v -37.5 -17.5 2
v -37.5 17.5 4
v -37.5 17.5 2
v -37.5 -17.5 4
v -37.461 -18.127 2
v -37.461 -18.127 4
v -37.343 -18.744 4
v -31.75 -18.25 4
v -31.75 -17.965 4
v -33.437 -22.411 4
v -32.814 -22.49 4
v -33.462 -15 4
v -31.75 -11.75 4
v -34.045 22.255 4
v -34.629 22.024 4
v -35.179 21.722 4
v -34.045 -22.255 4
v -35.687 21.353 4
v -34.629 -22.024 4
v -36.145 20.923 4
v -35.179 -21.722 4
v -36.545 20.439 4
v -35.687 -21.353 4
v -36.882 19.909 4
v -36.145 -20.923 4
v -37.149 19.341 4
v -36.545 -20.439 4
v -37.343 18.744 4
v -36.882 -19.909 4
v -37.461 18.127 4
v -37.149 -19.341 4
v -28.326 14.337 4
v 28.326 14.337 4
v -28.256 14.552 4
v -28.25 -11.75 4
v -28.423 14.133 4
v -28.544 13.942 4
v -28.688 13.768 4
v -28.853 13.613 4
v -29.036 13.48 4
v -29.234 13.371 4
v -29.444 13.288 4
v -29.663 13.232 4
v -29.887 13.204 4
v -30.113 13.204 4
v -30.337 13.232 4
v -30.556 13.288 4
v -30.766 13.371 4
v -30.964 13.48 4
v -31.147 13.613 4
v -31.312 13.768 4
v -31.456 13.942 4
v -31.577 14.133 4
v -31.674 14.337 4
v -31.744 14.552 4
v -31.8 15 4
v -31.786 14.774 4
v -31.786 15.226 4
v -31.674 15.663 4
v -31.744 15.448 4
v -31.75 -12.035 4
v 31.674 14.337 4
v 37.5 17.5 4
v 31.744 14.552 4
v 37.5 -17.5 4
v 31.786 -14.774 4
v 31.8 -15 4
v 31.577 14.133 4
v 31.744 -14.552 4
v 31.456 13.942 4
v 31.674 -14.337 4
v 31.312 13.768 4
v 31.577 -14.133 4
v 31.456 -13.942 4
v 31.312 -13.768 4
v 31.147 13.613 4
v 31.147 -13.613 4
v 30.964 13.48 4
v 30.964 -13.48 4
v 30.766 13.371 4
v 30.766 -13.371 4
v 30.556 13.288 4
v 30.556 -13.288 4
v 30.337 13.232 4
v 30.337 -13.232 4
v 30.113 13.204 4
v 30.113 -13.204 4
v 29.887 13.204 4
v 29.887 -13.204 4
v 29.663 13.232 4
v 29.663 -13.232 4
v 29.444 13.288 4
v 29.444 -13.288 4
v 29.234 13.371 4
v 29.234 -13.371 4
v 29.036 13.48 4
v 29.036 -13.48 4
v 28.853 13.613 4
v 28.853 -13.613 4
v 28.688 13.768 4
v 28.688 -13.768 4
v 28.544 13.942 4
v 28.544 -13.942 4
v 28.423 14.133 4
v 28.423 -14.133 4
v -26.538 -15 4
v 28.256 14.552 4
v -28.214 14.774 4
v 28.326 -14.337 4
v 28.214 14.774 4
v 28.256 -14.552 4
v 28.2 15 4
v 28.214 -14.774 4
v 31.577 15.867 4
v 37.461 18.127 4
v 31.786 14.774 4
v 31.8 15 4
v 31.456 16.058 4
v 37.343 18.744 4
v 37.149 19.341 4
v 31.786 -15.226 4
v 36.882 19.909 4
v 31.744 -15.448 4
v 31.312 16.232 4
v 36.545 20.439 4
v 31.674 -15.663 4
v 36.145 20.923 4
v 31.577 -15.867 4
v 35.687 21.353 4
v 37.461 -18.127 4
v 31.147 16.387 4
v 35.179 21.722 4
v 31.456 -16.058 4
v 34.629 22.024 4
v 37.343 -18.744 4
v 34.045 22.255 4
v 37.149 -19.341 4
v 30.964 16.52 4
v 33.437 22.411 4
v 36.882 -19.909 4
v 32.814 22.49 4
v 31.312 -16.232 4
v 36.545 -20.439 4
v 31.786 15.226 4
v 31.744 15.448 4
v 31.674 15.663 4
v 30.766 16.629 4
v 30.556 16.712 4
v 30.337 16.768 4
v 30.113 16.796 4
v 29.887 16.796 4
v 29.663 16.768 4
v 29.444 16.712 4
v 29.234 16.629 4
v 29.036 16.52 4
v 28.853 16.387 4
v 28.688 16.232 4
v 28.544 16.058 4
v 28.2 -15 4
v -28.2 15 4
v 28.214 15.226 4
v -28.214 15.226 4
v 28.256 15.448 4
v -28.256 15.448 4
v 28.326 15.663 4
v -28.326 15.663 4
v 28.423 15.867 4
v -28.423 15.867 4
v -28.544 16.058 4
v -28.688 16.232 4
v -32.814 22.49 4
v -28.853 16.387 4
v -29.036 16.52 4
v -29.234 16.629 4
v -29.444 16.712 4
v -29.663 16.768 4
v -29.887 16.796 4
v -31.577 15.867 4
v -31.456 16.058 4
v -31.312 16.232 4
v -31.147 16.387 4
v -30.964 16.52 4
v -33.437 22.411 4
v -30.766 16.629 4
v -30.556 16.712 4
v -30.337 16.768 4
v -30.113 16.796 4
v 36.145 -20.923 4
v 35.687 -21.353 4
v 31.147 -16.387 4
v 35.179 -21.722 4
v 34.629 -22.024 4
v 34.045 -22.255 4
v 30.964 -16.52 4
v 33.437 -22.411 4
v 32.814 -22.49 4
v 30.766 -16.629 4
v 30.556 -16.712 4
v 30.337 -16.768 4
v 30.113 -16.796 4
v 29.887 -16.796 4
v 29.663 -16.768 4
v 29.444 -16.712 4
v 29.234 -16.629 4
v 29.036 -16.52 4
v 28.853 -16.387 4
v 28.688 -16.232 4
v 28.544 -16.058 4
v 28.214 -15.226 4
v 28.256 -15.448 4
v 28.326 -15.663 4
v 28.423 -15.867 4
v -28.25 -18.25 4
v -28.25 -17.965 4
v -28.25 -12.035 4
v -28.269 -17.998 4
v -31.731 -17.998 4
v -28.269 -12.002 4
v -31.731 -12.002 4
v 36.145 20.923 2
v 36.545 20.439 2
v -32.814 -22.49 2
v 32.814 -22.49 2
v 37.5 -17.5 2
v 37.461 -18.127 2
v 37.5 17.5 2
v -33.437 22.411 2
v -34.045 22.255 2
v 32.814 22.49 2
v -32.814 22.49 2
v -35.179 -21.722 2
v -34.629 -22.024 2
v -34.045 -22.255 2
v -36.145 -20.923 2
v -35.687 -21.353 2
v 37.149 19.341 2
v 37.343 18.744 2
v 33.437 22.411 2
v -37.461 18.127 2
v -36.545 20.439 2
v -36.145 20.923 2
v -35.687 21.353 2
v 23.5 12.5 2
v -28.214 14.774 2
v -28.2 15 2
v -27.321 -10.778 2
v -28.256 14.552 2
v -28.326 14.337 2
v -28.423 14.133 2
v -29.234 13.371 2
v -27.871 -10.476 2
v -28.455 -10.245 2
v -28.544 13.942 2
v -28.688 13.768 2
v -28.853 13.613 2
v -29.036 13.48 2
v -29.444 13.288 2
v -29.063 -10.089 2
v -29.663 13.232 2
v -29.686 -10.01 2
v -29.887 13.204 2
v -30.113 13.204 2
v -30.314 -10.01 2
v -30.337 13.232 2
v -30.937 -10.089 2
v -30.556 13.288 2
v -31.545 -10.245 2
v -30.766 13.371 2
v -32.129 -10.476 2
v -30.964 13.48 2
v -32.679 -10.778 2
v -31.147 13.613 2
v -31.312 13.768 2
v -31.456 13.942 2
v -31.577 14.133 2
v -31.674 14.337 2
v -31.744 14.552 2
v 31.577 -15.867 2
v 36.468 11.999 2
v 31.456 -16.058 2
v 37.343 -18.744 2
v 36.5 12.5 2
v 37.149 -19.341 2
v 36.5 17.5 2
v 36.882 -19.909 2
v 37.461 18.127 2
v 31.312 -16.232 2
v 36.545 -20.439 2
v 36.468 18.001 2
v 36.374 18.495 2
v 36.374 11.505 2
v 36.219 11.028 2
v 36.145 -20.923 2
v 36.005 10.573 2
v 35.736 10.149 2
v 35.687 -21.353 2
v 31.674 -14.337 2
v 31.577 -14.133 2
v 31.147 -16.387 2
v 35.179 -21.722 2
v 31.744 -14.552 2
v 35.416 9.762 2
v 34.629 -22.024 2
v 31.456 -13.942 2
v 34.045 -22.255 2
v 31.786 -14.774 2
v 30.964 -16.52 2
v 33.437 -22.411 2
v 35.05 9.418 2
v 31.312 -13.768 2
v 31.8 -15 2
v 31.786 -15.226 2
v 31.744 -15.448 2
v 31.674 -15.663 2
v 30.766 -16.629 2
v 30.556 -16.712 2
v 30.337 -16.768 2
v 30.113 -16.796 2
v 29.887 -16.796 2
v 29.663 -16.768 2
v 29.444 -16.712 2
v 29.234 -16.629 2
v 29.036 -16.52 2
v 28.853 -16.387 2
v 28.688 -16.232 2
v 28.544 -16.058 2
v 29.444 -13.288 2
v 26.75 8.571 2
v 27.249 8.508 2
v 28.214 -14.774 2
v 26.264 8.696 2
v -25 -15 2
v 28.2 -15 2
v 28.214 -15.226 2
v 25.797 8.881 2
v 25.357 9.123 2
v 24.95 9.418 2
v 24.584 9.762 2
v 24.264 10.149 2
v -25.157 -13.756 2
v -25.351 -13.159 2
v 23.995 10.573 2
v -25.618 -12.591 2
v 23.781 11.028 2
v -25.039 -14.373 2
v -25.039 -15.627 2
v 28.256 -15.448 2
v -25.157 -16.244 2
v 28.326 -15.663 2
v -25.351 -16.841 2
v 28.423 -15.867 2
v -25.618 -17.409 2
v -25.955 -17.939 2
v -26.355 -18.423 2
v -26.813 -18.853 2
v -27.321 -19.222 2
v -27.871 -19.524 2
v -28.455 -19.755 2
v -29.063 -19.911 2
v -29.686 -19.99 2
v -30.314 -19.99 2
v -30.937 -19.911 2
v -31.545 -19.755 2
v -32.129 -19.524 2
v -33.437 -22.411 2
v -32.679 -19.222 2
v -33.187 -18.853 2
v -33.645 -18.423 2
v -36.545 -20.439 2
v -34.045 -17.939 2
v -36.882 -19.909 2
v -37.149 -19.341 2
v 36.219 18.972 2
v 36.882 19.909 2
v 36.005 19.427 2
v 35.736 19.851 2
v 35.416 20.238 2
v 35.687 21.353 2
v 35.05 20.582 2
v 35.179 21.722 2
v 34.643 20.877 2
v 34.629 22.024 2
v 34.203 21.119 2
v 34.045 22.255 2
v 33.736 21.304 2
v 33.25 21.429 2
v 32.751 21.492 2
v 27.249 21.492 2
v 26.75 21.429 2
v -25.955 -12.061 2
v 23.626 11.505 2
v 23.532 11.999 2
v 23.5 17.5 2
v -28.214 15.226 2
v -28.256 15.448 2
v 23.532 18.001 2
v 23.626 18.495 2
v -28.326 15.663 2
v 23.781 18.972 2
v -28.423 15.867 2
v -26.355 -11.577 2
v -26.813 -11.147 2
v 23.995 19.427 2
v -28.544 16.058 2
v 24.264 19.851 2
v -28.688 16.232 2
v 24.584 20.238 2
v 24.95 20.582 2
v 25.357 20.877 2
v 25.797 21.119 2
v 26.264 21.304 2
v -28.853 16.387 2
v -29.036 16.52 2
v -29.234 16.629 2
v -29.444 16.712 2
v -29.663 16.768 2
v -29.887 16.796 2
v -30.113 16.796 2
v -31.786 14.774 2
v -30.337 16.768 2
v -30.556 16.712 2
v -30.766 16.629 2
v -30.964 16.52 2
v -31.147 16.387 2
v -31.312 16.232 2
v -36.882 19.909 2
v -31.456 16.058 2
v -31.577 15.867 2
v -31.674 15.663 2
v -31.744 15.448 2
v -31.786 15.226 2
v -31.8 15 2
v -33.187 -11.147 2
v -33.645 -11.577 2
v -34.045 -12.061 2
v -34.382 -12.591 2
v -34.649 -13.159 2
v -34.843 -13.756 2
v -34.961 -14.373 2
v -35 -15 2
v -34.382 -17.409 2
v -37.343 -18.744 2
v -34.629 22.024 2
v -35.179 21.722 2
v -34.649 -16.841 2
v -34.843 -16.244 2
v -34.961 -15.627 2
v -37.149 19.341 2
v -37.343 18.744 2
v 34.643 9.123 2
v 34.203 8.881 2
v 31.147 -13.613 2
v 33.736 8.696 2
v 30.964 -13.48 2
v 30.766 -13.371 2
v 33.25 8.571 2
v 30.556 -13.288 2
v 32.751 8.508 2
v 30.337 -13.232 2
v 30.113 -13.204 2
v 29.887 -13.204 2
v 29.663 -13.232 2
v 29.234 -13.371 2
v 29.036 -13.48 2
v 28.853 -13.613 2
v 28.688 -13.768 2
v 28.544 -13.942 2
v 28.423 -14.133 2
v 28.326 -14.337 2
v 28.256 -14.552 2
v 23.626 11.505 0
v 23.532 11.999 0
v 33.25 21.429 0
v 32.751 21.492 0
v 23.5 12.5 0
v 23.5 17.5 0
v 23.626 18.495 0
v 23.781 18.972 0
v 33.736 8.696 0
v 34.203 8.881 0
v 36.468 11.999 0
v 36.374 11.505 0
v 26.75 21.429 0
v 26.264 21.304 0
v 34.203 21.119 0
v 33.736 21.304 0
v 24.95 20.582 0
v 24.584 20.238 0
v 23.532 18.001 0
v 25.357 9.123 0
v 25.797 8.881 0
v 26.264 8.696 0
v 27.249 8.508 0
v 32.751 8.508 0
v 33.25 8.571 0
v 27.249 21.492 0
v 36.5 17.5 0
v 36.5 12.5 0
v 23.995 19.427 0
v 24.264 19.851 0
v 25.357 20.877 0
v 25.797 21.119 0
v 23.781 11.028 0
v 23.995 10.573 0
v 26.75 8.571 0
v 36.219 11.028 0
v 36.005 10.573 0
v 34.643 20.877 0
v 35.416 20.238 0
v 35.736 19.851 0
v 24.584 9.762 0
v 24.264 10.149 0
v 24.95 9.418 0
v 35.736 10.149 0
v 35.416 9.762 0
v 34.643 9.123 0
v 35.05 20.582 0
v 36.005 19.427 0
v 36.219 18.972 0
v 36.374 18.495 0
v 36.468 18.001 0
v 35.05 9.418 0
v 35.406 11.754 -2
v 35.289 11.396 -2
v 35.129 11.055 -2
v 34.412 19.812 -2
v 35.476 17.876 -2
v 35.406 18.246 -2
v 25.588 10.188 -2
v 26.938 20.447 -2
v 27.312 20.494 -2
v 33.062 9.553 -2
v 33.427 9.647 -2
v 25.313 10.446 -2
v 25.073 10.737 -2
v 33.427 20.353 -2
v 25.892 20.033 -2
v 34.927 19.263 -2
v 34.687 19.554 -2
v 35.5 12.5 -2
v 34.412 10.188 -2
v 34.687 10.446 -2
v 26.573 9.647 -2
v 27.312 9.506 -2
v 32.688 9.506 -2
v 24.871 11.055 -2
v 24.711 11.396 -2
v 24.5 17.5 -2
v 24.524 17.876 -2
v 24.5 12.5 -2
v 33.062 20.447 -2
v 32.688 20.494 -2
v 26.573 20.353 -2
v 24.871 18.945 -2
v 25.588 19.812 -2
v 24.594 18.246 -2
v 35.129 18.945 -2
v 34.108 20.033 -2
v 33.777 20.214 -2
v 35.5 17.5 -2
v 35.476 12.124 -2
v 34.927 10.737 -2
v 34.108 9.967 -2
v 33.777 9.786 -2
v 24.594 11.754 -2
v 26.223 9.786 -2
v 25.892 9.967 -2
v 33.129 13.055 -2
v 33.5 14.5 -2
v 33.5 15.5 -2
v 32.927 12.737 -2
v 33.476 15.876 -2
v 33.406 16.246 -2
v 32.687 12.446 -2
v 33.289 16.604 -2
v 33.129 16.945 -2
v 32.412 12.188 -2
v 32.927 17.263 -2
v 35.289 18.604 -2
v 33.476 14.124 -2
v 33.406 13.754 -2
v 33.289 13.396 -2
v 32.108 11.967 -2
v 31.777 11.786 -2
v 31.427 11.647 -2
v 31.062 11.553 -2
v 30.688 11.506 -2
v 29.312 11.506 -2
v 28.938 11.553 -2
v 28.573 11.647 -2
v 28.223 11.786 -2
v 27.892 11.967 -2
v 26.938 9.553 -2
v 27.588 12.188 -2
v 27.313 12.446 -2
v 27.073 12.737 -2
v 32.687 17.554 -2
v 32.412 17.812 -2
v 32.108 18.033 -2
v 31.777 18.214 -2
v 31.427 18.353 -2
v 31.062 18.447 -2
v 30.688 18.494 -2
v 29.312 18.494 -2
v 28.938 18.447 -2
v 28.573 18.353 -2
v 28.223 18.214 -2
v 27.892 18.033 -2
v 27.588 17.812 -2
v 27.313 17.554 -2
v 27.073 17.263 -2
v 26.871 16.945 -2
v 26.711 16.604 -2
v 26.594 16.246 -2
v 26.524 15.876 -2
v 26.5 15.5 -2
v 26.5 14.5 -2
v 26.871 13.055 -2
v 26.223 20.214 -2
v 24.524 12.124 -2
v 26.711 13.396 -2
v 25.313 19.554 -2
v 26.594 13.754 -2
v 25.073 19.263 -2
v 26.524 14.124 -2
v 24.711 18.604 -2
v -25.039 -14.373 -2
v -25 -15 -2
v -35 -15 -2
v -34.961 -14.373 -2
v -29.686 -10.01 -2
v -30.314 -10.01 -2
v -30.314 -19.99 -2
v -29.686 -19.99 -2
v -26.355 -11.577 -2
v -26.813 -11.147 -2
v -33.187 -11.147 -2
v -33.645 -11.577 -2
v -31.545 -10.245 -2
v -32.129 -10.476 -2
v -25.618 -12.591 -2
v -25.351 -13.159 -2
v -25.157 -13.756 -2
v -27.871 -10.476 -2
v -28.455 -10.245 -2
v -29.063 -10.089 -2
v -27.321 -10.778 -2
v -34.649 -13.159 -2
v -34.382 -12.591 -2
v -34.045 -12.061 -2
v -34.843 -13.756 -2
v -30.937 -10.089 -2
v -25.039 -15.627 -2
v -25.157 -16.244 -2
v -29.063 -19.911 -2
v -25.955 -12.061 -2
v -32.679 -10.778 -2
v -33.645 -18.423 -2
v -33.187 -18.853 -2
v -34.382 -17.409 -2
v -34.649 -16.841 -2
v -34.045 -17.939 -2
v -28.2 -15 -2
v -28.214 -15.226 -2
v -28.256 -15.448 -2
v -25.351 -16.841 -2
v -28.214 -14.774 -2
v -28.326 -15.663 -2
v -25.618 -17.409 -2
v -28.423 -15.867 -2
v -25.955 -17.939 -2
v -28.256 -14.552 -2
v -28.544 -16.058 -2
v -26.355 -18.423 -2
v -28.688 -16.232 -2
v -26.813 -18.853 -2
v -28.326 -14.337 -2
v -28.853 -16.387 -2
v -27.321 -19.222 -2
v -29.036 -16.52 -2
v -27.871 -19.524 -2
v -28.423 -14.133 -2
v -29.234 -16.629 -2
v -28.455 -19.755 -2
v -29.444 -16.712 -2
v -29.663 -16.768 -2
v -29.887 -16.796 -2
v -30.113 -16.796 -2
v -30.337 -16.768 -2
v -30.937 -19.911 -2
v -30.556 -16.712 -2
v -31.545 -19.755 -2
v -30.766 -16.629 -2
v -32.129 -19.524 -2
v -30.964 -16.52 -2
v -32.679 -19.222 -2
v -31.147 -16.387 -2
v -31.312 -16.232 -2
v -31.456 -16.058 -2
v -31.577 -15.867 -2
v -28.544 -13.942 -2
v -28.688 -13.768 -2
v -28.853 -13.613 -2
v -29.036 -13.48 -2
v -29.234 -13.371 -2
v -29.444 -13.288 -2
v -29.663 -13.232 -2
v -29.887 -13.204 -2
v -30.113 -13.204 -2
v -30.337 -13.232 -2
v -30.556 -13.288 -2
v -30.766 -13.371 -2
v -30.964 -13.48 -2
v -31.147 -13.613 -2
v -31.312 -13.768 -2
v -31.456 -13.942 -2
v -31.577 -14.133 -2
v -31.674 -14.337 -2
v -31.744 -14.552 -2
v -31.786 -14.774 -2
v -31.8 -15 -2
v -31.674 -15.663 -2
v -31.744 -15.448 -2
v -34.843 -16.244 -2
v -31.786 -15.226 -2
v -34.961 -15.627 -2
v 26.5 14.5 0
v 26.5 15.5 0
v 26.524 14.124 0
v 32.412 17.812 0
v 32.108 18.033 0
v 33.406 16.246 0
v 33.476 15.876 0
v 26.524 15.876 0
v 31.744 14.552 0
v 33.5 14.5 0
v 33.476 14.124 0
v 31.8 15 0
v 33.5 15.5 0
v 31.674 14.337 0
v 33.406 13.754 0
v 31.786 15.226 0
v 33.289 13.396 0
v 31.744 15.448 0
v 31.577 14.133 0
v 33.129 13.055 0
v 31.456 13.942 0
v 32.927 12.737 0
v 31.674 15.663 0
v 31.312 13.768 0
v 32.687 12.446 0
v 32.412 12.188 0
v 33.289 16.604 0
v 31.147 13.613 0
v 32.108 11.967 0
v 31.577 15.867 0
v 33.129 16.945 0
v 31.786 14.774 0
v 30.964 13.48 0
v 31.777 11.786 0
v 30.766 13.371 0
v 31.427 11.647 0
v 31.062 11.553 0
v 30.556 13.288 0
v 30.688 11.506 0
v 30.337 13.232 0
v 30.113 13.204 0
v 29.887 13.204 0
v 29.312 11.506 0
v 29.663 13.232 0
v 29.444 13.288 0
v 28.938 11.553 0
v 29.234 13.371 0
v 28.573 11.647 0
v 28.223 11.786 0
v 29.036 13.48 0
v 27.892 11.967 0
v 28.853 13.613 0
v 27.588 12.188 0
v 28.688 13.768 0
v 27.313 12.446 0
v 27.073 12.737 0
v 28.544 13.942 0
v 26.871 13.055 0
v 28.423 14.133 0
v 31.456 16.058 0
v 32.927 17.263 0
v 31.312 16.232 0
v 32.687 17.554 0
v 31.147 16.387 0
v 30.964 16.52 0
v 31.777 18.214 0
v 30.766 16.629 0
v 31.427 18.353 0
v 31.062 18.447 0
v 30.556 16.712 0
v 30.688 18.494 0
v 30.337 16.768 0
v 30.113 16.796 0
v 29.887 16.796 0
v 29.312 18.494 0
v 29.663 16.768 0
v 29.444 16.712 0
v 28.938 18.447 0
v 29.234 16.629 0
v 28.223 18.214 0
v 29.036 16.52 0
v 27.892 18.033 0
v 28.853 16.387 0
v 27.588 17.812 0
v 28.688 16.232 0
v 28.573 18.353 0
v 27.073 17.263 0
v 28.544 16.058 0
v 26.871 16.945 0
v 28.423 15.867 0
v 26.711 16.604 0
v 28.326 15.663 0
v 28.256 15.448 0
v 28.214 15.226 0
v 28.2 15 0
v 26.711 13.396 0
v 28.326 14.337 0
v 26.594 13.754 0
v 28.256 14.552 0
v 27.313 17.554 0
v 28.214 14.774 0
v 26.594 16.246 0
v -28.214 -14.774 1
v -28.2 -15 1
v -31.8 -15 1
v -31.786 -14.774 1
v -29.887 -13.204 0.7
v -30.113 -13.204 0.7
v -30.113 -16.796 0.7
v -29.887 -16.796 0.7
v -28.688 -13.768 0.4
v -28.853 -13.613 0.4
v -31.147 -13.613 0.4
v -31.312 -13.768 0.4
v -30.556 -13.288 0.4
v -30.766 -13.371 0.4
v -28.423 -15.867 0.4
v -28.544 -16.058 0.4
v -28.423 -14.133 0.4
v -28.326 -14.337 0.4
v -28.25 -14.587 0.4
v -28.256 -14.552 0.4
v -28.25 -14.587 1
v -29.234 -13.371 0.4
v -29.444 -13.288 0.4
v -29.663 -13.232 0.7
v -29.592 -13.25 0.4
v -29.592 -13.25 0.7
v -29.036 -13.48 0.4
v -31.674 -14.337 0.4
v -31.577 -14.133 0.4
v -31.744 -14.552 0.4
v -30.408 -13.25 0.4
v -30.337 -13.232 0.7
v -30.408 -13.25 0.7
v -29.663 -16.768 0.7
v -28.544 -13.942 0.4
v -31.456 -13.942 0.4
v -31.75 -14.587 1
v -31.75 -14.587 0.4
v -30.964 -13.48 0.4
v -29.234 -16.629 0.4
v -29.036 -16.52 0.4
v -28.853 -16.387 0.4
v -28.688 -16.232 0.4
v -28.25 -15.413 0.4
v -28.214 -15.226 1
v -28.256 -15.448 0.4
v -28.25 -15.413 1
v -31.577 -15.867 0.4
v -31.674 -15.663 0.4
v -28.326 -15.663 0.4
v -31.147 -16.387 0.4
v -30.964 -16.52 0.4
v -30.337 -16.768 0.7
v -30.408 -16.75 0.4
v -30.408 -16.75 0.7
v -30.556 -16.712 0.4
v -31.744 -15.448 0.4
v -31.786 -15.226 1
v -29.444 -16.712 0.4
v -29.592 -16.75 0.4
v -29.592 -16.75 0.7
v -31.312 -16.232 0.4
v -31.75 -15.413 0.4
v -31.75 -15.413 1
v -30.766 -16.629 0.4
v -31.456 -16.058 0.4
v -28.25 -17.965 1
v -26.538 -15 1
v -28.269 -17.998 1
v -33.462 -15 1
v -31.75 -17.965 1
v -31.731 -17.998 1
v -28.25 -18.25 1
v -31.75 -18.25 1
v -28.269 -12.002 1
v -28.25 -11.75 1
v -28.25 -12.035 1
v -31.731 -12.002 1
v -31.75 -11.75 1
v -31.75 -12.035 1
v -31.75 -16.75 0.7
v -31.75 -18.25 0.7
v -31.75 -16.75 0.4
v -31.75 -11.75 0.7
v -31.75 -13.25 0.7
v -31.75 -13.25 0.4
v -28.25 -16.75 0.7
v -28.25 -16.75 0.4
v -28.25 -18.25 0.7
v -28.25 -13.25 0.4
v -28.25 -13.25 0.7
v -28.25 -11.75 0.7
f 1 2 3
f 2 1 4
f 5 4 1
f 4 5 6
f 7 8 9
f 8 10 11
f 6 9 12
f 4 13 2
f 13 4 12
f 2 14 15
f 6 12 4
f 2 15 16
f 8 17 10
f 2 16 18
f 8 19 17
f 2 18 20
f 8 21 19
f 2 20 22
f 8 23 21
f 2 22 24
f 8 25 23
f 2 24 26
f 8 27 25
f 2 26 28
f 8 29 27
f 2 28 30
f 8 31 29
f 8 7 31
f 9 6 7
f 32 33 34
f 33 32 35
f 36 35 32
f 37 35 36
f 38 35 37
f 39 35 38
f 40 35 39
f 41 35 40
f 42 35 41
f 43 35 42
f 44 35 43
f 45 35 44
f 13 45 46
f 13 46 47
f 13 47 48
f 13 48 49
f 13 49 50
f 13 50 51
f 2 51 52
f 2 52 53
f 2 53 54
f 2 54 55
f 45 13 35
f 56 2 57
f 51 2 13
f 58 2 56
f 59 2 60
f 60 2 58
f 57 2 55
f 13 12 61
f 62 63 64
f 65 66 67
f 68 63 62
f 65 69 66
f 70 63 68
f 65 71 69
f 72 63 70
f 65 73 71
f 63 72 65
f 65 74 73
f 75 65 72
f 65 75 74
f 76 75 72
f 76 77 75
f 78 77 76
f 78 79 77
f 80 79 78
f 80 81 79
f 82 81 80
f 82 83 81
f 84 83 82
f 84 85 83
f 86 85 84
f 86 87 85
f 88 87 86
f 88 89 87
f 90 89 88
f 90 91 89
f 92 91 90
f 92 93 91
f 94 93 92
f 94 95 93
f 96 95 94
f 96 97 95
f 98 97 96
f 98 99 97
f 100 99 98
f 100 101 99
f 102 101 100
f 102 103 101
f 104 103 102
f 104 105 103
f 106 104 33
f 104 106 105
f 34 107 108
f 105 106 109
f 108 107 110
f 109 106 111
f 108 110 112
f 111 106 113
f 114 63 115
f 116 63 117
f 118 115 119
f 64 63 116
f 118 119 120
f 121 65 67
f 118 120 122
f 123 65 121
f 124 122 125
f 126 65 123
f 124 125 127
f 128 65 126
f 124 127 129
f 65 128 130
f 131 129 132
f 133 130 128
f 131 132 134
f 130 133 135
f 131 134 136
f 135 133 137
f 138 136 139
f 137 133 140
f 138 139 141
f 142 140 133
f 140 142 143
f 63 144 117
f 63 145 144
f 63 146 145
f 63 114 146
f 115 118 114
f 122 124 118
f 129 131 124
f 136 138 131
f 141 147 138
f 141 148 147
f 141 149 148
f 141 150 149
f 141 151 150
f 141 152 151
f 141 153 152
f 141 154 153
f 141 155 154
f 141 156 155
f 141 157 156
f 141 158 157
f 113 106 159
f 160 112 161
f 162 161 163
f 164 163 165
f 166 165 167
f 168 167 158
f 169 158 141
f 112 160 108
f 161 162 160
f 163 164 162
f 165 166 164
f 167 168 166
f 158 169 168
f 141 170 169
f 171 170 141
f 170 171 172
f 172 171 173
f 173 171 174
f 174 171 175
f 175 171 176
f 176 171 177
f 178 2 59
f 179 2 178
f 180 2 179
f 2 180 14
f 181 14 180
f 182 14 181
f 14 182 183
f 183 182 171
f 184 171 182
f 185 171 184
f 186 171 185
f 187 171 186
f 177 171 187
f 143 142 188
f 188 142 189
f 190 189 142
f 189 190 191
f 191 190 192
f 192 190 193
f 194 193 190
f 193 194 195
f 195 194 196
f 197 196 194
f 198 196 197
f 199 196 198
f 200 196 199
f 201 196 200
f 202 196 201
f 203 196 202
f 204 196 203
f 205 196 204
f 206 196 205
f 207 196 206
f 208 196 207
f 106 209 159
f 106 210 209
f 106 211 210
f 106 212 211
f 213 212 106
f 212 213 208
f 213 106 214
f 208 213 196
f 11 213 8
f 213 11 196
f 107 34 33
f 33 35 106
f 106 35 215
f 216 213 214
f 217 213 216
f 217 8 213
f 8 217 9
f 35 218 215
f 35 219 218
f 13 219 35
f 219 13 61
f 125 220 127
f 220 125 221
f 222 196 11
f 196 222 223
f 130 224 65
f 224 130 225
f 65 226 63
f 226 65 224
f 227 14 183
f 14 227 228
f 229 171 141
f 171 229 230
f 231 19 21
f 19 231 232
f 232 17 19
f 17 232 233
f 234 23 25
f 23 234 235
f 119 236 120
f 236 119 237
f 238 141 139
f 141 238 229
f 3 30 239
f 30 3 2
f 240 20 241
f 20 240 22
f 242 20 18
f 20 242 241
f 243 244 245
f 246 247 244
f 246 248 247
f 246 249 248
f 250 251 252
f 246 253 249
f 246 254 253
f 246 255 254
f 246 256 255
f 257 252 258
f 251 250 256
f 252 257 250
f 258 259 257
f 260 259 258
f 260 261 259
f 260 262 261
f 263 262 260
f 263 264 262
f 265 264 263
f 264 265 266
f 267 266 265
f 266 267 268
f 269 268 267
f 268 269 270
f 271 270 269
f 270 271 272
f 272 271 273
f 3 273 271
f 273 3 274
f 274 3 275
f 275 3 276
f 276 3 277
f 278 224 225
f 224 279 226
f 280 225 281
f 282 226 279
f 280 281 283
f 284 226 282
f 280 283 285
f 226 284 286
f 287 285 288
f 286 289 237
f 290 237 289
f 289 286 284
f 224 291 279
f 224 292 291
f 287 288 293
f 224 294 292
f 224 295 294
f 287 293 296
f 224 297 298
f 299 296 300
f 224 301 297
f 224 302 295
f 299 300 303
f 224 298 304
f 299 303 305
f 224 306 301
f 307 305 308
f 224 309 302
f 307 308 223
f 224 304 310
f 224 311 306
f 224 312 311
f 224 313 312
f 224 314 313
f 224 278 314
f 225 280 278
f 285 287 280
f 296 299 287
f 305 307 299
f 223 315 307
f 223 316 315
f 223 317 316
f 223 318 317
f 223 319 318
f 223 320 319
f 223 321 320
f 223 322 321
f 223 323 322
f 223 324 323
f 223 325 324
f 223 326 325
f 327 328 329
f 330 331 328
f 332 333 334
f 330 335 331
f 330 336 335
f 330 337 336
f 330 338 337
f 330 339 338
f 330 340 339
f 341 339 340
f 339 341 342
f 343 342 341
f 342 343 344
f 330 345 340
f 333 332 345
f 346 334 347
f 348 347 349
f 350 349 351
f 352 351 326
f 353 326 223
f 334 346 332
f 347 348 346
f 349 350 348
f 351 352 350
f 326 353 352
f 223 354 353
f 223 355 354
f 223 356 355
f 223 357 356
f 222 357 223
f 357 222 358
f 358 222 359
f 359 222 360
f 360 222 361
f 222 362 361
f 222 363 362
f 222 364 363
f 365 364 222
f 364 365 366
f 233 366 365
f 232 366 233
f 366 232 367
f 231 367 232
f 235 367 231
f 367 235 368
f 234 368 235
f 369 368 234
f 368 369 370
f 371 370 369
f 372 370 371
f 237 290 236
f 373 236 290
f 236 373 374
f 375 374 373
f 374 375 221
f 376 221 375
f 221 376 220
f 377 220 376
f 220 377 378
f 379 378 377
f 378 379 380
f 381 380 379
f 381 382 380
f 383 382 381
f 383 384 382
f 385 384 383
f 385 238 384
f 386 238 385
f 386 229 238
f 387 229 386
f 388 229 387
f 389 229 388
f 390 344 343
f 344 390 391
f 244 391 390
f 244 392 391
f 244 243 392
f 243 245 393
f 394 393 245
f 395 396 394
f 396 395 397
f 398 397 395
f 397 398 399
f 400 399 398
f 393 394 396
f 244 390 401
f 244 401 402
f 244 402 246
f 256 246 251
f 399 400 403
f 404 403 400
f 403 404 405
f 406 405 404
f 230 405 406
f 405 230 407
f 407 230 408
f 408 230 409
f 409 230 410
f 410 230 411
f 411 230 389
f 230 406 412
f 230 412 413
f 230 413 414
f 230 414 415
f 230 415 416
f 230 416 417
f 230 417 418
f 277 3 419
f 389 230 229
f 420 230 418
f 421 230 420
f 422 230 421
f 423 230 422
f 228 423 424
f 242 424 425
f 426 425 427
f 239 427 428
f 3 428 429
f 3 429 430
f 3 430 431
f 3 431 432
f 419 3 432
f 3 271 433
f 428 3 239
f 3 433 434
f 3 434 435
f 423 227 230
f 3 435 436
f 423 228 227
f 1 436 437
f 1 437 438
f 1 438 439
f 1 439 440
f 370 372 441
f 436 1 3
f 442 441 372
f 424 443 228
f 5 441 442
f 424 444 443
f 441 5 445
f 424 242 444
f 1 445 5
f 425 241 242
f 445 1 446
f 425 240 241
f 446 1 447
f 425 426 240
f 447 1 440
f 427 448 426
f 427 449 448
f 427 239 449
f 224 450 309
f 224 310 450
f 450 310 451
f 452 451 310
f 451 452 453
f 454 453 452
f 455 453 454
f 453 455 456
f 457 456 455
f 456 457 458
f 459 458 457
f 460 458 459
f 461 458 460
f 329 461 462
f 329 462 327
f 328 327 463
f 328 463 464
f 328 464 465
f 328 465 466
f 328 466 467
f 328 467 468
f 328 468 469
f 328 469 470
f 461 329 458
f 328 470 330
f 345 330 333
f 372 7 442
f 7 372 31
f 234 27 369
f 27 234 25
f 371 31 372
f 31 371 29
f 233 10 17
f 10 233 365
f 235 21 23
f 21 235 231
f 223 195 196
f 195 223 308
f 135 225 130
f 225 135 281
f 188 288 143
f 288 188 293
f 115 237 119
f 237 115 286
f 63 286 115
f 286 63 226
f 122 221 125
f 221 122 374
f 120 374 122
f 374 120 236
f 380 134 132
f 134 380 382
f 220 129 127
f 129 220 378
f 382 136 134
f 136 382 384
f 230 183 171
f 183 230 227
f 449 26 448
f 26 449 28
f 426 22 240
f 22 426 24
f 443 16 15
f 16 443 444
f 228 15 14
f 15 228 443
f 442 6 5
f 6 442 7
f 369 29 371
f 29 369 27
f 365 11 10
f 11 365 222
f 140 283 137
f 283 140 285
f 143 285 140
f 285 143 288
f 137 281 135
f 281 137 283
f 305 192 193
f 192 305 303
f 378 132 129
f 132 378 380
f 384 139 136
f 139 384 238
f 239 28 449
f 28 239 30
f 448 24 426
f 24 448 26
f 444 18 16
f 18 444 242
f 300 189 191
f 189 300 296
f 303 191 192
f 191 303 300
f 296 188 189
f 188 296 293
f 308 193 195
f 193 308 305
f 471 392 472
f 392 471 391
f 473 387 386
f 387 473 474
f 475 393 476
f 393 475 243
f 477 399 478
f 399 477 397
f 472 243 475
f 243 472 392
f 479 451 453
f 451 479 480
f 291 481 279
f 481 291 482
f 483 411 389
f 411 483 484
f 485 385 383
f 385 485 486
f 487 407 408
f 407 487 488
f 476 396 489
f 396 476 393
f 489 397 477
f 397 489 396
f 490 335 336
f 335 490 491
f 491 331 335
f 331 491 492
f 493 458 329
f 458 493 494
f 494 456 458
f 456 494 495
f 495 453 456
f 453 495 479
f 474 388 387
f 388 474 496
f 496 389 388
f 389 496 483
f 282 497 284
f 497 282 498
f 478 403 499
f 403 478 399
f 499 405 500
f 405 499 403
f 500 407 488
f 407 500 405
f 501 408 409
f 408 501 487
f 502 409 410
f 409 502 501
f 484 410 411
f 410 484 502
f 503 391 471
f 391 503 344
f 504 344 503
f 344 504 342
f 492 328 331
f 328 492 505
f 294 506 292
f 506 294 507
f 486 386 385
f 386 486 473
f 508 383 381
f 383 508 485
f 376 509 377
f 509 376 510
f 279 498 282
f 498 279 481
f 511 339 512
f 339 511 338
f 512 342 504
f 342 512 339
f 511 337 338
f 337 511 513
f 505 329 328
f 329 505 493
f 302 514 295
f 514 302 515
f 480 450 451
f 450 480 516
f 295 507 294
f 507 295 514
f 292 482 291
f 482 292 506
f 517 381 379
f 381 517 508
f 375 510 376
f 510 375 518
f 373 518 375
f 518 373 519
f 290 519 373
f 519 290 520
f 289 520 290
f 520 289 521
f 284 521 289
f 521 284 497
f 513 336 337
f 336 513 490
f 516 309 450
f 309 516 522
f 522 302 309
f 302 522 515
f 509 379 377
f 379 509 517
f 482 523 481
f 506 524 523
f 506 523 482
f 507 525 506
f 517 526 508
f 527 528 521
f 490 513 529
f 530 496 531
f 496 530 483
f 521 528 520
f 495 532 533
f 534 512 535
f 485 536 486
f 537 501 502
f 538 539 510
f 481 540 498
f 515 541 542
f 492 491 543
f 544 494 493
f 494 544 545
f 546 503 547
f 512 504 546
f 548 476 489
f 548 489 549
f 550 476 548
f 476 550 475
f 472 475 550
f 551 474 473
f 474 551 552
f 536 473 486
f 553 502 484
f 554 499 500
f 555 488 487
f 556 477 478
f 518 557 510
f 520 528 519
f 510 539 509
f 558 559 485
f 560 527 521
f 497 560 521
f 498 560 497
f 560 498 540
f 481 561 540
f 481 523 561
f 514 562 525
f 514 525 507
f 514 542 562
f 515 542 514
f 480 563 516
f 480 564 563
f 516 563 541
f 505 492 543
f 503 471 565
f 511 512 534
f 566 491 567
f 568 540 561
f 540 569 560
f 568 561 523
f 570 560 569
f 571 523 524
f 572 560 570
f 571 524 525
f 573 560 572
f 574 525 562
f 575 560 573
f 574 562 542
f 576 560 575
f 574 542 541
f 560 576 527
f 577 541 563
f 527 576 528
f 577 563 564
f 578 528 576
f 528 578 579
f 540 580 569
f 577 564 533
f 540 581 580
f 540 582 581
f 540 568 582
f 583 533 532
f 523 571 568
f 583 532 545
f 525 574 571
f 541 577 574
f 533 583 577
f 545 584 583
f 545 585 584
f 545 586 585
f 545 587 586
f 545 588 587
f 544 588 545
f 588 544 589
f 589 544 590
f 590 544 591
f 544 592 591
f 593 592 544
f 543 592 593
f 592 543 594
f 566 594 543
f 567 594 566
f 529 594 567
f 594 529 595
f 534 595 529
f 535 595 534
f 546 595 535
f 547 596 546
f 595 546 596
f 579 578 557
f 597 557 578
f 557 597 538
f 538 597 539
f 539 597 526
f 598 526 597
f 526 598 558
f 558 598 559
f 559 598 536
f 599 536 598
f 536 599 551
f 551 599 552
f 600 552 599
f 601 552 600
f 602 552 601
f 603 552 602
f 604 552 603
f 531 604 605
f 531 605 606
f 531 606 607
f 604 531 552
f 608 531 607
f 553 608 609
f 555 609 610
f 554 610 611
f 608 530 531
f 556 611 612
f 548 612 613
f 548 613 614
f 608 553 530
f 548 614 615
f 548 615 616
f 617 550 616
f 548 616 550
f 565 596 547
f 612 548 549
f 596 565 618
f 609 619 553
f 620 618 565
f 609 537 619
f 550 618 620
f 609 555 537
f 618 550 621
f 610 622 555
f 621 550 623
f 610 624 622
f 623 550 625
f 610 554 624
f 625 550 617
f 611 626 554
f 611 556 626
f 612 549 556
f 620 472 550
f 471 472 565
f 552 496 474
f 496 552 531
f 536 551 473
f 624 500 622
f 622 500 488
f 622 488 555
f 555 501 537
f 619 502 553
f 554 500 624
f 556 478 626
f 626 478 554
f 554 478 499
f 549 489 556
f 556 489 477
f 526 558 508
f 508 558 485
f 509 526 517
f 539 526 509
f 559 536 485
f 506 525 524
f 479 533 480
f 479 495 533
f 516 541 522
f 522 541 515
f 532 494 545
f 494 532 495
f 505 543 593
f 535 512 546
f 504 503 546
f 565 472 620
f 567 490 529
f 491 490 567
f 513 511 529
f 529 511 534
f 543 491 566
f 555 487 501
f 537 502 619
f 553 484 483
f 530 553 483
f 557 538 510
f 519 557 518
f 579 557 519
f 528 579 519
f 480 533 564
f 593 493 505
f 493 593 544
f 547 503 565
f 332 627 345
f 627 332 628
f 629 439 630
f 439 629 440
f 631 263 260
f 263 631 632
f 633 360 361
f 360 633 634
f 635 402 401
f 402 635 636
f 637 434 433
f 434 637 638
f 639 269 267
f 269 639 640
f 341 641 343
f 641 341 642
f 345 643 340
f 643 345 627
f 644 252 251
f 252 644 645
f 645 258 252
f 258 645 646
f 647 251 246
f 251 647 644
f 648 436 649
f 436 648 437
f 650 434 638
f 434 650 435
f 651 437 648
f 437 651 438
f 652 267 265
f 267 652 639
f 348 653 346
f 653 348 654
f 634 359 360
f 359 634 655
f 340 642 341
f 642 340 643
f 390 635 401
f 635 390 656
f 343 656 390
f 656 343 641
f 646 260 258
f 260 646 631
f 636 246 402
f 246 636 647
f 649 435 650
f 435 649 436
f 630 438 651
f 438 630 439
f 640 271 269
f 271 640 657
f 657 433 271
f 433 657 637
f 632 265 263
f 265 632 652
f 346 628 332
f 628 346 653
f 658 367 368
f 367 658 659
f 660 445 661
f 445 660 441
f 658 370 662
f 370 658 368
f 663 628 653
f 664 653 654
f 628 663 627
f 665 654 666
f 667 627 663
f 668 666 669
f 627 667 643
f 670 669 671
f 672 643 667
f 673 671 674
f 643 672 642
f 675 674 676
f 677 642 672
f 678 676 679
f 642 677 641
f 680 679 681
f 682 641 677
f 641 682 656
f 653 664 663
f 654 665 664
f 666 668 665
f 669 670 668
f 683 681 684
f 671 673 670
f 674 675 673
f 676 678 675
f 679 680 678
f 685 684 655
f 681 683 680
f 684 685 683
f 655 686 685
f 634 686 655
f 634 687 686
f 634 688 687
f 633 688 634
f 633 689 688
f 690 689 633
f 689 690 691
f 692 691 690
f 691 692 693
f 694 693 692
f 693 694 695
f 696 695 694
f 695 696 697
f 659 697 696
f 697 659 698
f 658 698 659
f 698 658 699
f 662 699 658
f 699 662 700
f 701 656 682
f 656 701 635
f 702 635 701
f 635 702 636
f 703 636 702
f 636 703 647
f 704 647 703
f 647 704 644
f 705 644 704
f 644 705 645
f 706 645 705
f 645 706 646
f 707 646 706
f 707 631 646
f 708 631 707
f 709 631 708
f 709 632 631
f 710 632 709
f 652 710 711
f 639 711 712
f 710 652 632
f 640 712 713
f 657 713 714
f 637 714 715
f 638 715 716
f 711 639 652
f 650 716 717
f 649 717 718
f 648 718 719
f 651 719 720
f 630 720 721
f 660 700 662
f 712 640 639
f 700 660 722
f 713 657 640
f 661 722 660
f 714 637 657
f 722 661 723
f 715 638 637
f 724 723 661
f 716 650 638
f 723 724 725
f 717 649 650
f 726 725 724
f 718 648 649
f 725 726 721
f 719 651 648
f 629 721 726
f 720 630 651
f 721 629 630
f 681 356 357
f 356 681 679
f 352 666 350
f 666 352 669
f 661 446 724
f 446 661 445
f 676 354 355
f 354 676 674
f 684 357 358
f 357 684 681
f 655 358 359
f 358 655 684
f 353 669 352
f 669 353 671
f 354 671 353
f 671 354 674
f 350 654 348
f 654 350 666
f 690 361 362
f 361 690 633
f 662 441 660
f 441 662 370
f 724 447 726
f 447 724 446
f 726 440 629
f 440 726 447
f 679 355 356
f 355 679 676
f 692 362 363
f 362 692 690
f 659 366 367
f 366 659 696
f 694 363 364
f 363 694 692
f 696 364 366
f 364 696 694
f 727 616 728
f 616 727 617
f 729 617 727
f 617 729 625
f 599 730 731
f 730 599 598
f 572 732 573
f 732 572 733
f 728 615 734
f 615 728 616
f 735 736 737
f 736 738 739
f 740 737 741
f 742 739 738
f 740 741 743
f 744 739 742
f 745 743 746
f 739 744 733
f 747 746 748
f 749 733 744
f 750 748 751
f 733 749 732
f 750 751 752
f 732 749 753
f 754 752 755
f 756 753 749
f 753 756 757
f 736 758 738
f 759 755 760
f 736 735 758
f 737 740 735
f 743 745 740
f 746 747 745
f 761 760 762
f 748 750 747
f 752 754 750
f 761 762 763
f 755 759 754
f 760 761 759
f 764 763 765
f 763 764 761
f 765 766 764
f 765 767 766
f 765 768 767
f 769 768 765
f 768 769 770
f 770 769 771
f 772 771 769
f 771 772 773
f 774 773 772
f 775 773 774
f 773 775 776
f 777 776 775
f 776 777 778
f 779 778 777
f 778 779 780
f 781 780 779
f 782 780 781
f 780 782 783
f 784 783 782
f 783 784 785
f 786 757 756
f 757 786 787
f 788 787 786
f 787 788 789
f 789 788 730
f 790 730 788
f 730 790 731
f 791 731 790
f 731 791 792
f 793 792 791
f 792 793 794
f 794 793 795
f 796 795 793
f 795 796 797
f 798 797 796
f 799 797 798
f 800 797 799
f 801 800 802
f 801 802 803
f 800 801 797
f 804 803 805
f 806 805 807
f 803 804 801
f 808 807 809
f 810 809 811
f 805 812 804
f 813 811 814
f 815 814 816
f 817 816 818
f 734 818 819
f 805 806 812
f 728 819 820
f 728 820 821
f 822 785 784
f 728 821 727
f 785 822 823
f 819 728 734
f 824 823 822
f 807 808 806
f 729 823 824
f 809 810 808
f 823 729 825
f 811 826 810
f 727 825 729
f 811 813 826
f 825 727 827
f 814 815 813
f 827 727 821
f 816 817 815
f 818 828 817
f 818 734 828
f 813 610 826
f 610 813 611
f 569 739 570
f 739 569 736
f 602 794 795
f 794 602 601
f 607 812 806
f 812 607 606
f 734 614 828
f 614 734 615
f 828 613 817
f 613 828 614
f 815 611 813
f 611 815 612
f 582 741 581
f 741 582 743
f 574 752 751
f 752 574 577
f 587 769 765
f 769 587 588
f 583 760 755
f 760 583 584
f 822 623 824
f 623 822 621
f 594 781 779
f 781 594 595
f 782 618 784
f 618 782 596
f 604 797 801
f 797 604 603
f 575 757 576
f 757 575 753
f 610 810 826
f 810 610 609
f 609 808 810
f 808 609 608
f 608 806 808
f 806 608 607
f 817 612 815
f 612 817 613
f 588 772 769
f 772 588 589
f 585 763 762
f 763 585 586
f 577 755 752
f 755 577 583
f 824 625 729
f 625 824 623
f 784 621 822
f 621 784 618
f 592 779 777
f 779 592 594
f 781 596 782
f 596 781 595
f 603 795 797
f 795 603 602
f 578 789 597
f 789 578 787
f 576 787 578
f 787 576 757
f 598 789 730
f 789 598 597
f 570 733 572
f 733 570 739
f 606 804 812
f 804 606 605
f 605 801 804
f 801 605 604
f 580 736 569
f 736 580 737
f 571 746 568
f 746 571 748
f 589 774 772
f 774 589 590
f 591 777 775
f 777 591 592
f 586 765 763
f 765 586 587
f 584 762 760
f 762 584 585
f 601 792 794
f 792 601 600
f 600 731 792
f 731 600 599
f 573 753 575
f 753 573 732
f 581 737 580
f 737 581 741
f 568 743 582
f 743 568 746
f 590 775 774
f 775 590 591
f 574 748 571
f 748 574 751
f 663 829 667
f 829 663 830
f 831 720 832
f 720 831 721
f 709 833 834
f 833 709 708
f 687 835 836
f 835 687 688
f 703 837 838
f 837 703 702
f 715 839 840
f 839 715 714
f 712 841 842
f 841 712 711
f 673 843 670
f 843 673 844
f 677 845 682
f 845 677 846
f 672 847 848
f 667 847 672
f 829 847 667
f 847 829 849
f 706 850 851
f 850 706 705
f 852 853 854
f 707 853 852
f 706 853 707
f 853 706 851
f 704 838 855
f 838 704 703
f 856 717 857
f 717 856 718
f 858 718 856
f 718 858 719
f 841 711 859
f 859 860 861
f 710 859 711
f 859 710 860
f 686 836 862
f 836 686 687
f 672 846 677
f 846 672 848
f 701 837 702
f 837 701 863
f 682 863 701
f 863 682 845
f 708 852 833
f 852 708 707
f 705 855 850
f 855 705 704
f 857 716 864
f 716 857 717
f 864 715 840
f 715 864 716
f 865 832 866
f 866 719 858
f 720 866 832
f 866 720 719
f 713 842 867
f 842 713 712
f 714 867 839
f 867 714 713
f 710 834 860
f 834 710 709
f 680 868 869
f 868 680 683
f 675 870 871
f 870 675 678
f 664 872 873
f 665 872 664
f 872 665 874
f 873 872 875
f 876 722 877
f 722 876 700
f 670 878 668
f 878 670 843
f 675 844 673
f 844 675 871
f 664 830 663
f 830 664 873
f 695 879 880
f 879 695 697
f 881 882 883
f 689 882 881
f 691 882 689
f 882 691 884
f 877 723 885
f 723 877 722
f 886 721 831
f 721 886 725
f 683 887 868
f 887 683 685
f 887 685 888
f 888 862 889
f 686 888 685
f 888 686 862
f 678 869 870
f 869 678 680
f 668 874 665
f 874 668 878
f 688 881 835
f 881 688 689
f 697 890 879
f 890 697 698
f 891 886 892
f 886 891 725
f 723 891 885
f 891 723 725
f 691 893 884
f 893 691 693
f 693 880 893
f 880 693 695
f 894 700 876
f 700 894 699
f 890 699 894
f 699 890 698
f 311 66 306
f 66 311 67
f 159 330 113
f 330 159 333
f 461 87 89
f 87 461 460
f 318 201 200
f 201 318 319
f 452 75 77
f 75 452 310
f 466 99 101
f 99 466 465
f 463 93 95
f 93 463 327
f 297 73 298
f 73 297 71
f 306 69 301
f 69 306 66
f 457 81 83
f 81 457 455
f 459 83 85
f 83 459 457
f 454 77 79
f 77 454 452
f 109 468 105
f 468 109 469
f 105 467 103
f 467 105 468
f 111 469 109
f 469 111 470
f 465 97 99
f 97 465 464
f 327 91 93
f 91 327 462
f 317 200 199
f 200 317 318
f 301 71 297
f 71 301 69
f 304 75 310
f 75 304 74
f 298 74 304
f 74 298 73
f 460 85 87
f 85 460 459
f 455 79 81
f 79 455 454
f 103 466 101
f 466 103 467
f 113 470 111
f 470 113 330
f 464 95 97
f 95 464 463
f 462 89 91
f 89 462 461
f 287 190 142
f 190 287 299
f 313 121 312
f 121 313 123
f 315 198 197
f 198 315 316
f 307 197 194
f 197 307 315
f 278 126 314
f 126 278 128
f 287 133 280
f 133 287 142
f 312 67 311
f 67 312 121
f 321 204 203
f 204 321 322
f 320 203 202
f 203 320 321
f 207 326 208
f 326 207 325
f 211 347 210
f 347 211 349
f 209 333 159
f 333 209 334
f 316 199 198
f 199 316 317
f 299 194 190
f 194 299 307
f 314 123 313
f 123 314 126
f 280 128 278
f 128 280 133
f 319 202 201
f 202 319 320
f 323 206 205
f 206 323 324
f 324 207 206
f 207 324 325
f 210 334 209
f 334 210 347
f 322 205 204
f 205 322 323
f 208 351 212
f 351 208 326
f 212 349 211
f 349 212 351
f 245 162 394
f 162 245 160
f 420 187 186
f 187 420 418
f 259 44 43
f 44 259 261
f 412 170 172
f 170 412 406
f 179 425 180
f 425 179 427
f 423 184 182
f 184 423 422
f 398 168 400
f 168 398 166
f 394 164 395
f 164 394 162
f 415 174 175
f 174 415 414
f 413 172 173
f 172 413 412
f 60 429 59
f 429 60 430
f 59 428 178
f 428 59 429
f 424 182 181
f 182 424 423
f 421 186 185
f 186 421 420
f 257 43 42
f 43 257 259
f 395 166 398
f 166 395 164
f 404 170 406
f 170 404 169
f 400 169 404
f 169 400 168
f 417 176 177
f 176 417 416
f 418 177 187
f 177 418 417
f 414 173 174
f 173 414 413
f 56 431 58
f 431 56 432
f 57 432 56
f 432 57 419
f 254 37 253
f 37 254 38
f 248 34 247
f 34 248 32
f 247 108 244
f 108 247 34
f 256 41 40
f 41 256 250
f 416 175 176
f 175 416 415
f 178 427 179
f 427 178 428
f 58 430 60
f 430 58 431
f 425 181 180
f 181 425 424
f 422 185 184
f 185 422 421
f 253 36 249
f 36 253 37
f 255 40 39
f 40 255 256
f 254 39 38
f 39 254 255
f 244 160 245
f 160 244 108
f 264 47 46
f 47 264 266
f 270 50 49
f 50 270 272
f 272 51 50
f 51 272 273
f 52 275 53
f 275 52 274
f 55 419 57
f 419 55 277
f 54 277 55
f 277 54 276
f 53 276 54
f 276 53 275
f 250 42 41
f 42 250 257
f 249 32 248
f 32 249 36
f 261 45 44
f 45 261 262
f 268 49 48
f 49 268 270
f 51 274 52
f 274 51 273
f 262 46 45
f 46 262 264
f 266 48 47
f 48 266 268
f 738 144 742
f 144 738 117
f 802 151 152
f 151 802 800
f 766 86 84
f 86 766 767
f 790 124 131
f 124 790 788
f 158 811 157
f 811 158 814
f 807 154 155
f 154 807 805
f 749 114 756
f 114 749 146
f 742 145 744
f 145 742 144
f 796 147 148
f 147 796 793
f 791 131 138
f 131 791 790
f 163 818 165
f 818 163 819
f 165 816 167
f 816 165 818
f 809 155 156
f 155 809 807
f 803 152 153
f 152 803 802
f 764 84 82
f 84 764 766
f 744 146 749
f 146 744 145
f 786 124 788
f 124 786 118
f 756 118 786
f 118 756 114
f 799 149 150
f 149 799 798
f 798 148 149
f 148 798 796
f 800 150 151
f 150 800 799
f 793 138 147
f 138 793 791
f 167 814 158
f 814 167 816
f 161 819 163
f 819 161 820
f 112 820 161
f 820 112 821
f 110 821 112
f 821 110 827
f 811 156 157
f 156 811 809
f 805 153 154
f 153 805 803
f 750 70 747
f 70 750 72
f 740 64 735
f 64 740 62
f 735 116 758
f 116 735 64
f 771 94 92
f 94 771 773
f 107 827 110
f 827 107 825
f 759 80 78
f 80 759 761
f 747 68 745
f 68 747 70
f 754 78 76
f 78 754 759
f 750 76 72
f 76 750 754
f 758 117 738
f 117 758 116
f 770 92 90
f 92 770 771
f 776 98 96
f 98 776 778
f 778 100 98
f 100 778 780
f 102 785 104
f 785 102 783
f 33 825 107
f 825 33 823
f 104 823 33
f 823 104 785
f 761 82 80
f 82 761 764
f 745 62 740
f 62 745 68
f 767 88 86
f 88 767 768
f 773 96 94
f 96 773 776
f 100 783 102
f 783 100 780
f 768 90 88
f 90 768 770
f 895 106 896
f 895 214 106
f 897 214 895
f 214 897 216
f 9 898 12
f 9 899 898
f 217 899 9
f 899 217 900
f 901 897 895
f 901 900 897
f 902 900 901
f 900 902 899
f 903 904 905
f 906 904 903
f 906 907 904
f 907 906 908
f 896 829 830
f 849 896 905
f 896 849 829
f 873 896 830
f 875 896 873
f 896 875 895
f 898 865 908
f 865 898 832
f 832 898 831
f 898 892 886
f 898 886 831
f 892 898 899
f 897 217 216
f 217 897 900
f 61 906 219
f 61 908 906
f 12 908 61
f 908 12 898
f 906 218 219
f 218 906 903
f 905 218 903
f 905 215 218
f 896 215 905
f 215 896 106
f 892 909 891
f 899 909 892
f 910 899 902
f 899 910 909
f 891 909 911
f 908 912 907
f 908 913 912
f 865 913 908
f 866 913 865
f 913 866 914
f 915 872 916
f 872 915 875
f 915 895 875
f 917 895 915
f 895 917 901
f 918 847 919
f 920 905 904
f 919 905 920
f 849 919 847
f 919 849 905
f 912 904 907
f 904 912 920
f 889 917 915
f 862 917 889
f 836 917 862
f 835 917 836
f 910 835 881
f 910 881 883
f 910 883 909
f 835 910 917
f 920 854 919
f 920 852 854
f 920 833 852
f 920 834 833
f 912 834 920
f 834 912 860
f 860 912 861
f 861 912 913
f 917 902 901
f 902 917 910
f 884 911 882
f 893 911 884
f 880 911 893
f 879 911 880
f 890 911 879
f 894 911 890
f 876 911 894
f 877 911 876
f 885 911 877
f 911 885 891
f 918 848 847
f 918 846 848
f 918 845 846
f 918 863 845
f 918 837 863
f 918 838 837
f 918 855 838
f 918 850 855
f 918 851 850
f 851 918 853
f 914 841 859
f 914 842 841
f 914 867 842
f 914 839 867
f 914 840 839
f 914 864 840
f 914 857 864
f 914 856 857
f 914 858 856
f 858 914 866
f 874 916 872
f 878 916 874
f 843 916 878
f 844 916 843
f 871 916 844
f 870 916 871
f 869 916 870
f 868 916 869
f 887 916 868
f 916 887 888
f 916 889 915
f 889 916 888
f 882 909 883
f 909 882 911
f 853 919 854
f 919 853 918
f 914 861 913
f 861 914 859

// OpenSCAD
$fn = 50;


difference() {
	union() {
		translate(v = [0, 0, 2]) {
			rotate(a = [0, 0, 0]) {
				hull() {
					translate(v = [-32.5000000000, 17.5000000000, 0]) {
						rotate(a = [0, 0, 0]) {
							translate(v = [0, 0, 0]) {
								rotate(a = [0, 0, 0]) {
									cylinder(h = 2, r = 5);
								}
							}
						}
					}
					translate(v = [32.5000000000, 17.5000000000, 0]) {
						rotate(a = [0, 0, 0]) {
							translate(v = [0, 0, 0]) {
								rotate(a = [0, 0, 0]) {
									cylinder(h = 2, r = 5);
								}
							}
						}
					}
					translate(v = [-32.5000000000, -17.5000000000, 0]) {
						rotate(a = [0, 0, 0]) {
							translate(v = [0, 0, 0]) {
								rotate(a = [0, 0, 0]) {
									cylinder(h = 2, r = 5);
								}
							}
						}
					}
					translate(v = [32.5000000000, -17.5000000000, 0]) {
						rotate(a = [0, 0, 0]) {
							translate(v = [0, 0, 0]) {
								rotate(a = [0, 0, 0]) {
									cylinder(h = 2, r = 5);
								}
							}
						}
					}
				}
			}
		}
		translate(v = [30.0000000000, 15.0000000000, 0]) {
			rotate(a = [0, 0, 0]) {
				hull() {
					translate(v = [-2.5000000000, 2.5000000000, 0]) {
						rotate(a = [0, 0, 0]) {
							cylinder(h = 2, r1 = 4.0000000000, r2 = 4.0000000000);
						}
					}
					translate(v = [2.5000000000, 2.5000000000, 0]) {
						rotate(a = [0, 0, 0]) {
							cylinder(h = 2, r1 = 4.0000000000, r2 = 4.0000000000);
						}
					}
					translate(v = [-2.5000000000, -2.5000000000, 0]) {
						rotate(a = [0, 0, 0]) {
							cylinder(h = 2, r1 = 4.0000000000, r2 = 4.0000000000);
						}
					}
					translate(v = [2.5000000000, -2.5000000000, 0]) {
						rotate(a = [0, 0, 0]) {
							cylinder(h = 2, r1 = 4.0000000000, r2 = 4.0000000000);
						}
					}
				}
			}
		}
		translate(v = [30.0000000000, 15.0000000000, -2]) {
			rotate(a = [0, 180, 0]) {
				hull() {
					translate(v = [-2.5000000000, 2.5000000000, 0]) {
						rotate(a = [0, 180, 0]) {
							cylinder(h = 2, r1 = 3.0000000000, r2 = 4.0000000000);
						}
					}
					translate(v = [2.5000000000, 2.5000000000, 0]) {
						rotate(a = [0, 180, 0]) {
							cylinder(h = 2, r1 = 3.0000000000, r2 = 4.0000000000);
						}
					}
					translate(v = [-2.5000000000, -2.5000000000, 0]) {
						rotate(a = [0, 180, 0]) {
							cylinder(h = 2, r1 = 3.0000000000, r2 = 4.0000000000);
						}
					}
					translate(v = [2.5000000000, -2.5000000000, 0]) {
						rotate(a = [0, 180, 0]) {
							cylinder(h = 2, r1 = 3.0000000000, r2 = 4.0000000000);
						}
					}
				}
			}
		}
		translate(v = [-30.0000000000, -15.0000000000, -2.0000000000]) {
			rotate(a = [0, 0, 0]) {
				cylinder(h = 4, r = 5);
			}
		}
	}
	union() {
		translate(v = [30.0000000000, 15.0000000000, -2]) {
			rotate(a = [0, 0, 0]) {
				hull() {
					translate(v = [-0.5000000000, 0.5000000000, 0]) {
						rotate(a = [0, 0, 0]) {
							translate(v = [0, 0, 0]) {
								rotate(a = [0, 0, 0]) {
									cylinder(h = 2, r = 3.0000000000);
								}
							}
						}
					}
					translate(v = [0.5000000000, 0.5000000000, 0]) {
						rotate(a = [0, 0, 0]) {
							translate(v = [0, 0, 0]) {
								rotate(a = [0, 0, 0]) {
									cylinder(h = 2, r = 3.0000000000);
								}
							}
						}
					}
					translate(v = [-0.5000000000, -0.5000000000, 0]) {
						rotate(a = [0, 0, 0]) {
							translate(v = [0, 0, 0]) {
								rotate(a = [0, 0, 0]) {
									cylinder(h = 2, r = 3.0000000000);
								}
							}
						}
					}
					translate(v = [0.5000000000, -0.5000000000, 0]) {
						rotate(a = [0, 0, 0]) {
							translate(v = [0, 0, 0]) {
								rotate(a = [0, 0, 0]) {
									cylinder(h = 2, r = 3.0000000000);
								}
							}
						}
					}
				}
			}
		}
		translate(v = [-30.0000000000, -15.0000000000, -50]) {
			rotate(a = [0, 0, 0]) {
				cylinder(h = 100, r = 1.8000000000);
			}
		}
		translate(v = [30.0000000000, -15.0000000000, -50]) {
			rotate(a = [0, 0, 0]) {
				cylinder(h = 100, r = 1.8000000000);
			}
		}
		translate(v = [-30.0000000000, 15.0000000000, -50]) {
			rotate(a = [0, 0, 0]) {
				cylinder(h = 100, r = 1.8000000000);
			}
		}
		translate(v = [30.0000000000, 15.0000000000, -50]) {
			rotate(a = [0, 0, 0]) {
				cylinder(h = 100, r = 1.8000000000);
			}
		}
		translate(v = [-30.0000000000, -15.0000000000, 1]) {
			rotate(a = [0, 0, 0]) {
				#translate(v = [0, 0, 0]) {
					rotate(a = [0, 0, 0]) {
						linear_extrude(height = 3) {
							polygon(points = [[3.4620000000, 0.0000000000], [1.7310000000, 2.9981799479], [-1.7310000000, 2.9981799479], [-3.4620000000, 0.0000000000], [-1.7310000000, -2.9981799479], [1.7310000000, -2.9981799479]]);
						}
					}
				}
			}
		}
		#translate(v = [-31.7500000000, -18.2500000000, 4]) {
			rotate(a = [0, 0, 0]) {
				cube(size = [3.5000000000, 6.5000000000, 0.3000000000]);
			}
		}
		#translate(v = [-31.7500000000, -16.7500000000, 4.3000000000]) {
			rotate(a = [0, 0, 0]) {
				cube(size = [3.5000000000, 3.5000000000, 0.3000000000]);
			}
		}
		#translate(v = [-31.7500000000, -18.2500000000, 0.7000000000]) {
			rotate(a = [0, 0, 0]) {
				cube(size = [3.5000000000, 6.5000000000, 0.3000000000]);
			}
		}
		#translate(v = [-31.7500000000, -16.7500000000, 0.4000000000]) {
			rotate(a = [0, 0, 0]) {
				cube(size = [3.5000000000, 3.5000000000, 0.3000000000]);
			}
		}
	}
}
